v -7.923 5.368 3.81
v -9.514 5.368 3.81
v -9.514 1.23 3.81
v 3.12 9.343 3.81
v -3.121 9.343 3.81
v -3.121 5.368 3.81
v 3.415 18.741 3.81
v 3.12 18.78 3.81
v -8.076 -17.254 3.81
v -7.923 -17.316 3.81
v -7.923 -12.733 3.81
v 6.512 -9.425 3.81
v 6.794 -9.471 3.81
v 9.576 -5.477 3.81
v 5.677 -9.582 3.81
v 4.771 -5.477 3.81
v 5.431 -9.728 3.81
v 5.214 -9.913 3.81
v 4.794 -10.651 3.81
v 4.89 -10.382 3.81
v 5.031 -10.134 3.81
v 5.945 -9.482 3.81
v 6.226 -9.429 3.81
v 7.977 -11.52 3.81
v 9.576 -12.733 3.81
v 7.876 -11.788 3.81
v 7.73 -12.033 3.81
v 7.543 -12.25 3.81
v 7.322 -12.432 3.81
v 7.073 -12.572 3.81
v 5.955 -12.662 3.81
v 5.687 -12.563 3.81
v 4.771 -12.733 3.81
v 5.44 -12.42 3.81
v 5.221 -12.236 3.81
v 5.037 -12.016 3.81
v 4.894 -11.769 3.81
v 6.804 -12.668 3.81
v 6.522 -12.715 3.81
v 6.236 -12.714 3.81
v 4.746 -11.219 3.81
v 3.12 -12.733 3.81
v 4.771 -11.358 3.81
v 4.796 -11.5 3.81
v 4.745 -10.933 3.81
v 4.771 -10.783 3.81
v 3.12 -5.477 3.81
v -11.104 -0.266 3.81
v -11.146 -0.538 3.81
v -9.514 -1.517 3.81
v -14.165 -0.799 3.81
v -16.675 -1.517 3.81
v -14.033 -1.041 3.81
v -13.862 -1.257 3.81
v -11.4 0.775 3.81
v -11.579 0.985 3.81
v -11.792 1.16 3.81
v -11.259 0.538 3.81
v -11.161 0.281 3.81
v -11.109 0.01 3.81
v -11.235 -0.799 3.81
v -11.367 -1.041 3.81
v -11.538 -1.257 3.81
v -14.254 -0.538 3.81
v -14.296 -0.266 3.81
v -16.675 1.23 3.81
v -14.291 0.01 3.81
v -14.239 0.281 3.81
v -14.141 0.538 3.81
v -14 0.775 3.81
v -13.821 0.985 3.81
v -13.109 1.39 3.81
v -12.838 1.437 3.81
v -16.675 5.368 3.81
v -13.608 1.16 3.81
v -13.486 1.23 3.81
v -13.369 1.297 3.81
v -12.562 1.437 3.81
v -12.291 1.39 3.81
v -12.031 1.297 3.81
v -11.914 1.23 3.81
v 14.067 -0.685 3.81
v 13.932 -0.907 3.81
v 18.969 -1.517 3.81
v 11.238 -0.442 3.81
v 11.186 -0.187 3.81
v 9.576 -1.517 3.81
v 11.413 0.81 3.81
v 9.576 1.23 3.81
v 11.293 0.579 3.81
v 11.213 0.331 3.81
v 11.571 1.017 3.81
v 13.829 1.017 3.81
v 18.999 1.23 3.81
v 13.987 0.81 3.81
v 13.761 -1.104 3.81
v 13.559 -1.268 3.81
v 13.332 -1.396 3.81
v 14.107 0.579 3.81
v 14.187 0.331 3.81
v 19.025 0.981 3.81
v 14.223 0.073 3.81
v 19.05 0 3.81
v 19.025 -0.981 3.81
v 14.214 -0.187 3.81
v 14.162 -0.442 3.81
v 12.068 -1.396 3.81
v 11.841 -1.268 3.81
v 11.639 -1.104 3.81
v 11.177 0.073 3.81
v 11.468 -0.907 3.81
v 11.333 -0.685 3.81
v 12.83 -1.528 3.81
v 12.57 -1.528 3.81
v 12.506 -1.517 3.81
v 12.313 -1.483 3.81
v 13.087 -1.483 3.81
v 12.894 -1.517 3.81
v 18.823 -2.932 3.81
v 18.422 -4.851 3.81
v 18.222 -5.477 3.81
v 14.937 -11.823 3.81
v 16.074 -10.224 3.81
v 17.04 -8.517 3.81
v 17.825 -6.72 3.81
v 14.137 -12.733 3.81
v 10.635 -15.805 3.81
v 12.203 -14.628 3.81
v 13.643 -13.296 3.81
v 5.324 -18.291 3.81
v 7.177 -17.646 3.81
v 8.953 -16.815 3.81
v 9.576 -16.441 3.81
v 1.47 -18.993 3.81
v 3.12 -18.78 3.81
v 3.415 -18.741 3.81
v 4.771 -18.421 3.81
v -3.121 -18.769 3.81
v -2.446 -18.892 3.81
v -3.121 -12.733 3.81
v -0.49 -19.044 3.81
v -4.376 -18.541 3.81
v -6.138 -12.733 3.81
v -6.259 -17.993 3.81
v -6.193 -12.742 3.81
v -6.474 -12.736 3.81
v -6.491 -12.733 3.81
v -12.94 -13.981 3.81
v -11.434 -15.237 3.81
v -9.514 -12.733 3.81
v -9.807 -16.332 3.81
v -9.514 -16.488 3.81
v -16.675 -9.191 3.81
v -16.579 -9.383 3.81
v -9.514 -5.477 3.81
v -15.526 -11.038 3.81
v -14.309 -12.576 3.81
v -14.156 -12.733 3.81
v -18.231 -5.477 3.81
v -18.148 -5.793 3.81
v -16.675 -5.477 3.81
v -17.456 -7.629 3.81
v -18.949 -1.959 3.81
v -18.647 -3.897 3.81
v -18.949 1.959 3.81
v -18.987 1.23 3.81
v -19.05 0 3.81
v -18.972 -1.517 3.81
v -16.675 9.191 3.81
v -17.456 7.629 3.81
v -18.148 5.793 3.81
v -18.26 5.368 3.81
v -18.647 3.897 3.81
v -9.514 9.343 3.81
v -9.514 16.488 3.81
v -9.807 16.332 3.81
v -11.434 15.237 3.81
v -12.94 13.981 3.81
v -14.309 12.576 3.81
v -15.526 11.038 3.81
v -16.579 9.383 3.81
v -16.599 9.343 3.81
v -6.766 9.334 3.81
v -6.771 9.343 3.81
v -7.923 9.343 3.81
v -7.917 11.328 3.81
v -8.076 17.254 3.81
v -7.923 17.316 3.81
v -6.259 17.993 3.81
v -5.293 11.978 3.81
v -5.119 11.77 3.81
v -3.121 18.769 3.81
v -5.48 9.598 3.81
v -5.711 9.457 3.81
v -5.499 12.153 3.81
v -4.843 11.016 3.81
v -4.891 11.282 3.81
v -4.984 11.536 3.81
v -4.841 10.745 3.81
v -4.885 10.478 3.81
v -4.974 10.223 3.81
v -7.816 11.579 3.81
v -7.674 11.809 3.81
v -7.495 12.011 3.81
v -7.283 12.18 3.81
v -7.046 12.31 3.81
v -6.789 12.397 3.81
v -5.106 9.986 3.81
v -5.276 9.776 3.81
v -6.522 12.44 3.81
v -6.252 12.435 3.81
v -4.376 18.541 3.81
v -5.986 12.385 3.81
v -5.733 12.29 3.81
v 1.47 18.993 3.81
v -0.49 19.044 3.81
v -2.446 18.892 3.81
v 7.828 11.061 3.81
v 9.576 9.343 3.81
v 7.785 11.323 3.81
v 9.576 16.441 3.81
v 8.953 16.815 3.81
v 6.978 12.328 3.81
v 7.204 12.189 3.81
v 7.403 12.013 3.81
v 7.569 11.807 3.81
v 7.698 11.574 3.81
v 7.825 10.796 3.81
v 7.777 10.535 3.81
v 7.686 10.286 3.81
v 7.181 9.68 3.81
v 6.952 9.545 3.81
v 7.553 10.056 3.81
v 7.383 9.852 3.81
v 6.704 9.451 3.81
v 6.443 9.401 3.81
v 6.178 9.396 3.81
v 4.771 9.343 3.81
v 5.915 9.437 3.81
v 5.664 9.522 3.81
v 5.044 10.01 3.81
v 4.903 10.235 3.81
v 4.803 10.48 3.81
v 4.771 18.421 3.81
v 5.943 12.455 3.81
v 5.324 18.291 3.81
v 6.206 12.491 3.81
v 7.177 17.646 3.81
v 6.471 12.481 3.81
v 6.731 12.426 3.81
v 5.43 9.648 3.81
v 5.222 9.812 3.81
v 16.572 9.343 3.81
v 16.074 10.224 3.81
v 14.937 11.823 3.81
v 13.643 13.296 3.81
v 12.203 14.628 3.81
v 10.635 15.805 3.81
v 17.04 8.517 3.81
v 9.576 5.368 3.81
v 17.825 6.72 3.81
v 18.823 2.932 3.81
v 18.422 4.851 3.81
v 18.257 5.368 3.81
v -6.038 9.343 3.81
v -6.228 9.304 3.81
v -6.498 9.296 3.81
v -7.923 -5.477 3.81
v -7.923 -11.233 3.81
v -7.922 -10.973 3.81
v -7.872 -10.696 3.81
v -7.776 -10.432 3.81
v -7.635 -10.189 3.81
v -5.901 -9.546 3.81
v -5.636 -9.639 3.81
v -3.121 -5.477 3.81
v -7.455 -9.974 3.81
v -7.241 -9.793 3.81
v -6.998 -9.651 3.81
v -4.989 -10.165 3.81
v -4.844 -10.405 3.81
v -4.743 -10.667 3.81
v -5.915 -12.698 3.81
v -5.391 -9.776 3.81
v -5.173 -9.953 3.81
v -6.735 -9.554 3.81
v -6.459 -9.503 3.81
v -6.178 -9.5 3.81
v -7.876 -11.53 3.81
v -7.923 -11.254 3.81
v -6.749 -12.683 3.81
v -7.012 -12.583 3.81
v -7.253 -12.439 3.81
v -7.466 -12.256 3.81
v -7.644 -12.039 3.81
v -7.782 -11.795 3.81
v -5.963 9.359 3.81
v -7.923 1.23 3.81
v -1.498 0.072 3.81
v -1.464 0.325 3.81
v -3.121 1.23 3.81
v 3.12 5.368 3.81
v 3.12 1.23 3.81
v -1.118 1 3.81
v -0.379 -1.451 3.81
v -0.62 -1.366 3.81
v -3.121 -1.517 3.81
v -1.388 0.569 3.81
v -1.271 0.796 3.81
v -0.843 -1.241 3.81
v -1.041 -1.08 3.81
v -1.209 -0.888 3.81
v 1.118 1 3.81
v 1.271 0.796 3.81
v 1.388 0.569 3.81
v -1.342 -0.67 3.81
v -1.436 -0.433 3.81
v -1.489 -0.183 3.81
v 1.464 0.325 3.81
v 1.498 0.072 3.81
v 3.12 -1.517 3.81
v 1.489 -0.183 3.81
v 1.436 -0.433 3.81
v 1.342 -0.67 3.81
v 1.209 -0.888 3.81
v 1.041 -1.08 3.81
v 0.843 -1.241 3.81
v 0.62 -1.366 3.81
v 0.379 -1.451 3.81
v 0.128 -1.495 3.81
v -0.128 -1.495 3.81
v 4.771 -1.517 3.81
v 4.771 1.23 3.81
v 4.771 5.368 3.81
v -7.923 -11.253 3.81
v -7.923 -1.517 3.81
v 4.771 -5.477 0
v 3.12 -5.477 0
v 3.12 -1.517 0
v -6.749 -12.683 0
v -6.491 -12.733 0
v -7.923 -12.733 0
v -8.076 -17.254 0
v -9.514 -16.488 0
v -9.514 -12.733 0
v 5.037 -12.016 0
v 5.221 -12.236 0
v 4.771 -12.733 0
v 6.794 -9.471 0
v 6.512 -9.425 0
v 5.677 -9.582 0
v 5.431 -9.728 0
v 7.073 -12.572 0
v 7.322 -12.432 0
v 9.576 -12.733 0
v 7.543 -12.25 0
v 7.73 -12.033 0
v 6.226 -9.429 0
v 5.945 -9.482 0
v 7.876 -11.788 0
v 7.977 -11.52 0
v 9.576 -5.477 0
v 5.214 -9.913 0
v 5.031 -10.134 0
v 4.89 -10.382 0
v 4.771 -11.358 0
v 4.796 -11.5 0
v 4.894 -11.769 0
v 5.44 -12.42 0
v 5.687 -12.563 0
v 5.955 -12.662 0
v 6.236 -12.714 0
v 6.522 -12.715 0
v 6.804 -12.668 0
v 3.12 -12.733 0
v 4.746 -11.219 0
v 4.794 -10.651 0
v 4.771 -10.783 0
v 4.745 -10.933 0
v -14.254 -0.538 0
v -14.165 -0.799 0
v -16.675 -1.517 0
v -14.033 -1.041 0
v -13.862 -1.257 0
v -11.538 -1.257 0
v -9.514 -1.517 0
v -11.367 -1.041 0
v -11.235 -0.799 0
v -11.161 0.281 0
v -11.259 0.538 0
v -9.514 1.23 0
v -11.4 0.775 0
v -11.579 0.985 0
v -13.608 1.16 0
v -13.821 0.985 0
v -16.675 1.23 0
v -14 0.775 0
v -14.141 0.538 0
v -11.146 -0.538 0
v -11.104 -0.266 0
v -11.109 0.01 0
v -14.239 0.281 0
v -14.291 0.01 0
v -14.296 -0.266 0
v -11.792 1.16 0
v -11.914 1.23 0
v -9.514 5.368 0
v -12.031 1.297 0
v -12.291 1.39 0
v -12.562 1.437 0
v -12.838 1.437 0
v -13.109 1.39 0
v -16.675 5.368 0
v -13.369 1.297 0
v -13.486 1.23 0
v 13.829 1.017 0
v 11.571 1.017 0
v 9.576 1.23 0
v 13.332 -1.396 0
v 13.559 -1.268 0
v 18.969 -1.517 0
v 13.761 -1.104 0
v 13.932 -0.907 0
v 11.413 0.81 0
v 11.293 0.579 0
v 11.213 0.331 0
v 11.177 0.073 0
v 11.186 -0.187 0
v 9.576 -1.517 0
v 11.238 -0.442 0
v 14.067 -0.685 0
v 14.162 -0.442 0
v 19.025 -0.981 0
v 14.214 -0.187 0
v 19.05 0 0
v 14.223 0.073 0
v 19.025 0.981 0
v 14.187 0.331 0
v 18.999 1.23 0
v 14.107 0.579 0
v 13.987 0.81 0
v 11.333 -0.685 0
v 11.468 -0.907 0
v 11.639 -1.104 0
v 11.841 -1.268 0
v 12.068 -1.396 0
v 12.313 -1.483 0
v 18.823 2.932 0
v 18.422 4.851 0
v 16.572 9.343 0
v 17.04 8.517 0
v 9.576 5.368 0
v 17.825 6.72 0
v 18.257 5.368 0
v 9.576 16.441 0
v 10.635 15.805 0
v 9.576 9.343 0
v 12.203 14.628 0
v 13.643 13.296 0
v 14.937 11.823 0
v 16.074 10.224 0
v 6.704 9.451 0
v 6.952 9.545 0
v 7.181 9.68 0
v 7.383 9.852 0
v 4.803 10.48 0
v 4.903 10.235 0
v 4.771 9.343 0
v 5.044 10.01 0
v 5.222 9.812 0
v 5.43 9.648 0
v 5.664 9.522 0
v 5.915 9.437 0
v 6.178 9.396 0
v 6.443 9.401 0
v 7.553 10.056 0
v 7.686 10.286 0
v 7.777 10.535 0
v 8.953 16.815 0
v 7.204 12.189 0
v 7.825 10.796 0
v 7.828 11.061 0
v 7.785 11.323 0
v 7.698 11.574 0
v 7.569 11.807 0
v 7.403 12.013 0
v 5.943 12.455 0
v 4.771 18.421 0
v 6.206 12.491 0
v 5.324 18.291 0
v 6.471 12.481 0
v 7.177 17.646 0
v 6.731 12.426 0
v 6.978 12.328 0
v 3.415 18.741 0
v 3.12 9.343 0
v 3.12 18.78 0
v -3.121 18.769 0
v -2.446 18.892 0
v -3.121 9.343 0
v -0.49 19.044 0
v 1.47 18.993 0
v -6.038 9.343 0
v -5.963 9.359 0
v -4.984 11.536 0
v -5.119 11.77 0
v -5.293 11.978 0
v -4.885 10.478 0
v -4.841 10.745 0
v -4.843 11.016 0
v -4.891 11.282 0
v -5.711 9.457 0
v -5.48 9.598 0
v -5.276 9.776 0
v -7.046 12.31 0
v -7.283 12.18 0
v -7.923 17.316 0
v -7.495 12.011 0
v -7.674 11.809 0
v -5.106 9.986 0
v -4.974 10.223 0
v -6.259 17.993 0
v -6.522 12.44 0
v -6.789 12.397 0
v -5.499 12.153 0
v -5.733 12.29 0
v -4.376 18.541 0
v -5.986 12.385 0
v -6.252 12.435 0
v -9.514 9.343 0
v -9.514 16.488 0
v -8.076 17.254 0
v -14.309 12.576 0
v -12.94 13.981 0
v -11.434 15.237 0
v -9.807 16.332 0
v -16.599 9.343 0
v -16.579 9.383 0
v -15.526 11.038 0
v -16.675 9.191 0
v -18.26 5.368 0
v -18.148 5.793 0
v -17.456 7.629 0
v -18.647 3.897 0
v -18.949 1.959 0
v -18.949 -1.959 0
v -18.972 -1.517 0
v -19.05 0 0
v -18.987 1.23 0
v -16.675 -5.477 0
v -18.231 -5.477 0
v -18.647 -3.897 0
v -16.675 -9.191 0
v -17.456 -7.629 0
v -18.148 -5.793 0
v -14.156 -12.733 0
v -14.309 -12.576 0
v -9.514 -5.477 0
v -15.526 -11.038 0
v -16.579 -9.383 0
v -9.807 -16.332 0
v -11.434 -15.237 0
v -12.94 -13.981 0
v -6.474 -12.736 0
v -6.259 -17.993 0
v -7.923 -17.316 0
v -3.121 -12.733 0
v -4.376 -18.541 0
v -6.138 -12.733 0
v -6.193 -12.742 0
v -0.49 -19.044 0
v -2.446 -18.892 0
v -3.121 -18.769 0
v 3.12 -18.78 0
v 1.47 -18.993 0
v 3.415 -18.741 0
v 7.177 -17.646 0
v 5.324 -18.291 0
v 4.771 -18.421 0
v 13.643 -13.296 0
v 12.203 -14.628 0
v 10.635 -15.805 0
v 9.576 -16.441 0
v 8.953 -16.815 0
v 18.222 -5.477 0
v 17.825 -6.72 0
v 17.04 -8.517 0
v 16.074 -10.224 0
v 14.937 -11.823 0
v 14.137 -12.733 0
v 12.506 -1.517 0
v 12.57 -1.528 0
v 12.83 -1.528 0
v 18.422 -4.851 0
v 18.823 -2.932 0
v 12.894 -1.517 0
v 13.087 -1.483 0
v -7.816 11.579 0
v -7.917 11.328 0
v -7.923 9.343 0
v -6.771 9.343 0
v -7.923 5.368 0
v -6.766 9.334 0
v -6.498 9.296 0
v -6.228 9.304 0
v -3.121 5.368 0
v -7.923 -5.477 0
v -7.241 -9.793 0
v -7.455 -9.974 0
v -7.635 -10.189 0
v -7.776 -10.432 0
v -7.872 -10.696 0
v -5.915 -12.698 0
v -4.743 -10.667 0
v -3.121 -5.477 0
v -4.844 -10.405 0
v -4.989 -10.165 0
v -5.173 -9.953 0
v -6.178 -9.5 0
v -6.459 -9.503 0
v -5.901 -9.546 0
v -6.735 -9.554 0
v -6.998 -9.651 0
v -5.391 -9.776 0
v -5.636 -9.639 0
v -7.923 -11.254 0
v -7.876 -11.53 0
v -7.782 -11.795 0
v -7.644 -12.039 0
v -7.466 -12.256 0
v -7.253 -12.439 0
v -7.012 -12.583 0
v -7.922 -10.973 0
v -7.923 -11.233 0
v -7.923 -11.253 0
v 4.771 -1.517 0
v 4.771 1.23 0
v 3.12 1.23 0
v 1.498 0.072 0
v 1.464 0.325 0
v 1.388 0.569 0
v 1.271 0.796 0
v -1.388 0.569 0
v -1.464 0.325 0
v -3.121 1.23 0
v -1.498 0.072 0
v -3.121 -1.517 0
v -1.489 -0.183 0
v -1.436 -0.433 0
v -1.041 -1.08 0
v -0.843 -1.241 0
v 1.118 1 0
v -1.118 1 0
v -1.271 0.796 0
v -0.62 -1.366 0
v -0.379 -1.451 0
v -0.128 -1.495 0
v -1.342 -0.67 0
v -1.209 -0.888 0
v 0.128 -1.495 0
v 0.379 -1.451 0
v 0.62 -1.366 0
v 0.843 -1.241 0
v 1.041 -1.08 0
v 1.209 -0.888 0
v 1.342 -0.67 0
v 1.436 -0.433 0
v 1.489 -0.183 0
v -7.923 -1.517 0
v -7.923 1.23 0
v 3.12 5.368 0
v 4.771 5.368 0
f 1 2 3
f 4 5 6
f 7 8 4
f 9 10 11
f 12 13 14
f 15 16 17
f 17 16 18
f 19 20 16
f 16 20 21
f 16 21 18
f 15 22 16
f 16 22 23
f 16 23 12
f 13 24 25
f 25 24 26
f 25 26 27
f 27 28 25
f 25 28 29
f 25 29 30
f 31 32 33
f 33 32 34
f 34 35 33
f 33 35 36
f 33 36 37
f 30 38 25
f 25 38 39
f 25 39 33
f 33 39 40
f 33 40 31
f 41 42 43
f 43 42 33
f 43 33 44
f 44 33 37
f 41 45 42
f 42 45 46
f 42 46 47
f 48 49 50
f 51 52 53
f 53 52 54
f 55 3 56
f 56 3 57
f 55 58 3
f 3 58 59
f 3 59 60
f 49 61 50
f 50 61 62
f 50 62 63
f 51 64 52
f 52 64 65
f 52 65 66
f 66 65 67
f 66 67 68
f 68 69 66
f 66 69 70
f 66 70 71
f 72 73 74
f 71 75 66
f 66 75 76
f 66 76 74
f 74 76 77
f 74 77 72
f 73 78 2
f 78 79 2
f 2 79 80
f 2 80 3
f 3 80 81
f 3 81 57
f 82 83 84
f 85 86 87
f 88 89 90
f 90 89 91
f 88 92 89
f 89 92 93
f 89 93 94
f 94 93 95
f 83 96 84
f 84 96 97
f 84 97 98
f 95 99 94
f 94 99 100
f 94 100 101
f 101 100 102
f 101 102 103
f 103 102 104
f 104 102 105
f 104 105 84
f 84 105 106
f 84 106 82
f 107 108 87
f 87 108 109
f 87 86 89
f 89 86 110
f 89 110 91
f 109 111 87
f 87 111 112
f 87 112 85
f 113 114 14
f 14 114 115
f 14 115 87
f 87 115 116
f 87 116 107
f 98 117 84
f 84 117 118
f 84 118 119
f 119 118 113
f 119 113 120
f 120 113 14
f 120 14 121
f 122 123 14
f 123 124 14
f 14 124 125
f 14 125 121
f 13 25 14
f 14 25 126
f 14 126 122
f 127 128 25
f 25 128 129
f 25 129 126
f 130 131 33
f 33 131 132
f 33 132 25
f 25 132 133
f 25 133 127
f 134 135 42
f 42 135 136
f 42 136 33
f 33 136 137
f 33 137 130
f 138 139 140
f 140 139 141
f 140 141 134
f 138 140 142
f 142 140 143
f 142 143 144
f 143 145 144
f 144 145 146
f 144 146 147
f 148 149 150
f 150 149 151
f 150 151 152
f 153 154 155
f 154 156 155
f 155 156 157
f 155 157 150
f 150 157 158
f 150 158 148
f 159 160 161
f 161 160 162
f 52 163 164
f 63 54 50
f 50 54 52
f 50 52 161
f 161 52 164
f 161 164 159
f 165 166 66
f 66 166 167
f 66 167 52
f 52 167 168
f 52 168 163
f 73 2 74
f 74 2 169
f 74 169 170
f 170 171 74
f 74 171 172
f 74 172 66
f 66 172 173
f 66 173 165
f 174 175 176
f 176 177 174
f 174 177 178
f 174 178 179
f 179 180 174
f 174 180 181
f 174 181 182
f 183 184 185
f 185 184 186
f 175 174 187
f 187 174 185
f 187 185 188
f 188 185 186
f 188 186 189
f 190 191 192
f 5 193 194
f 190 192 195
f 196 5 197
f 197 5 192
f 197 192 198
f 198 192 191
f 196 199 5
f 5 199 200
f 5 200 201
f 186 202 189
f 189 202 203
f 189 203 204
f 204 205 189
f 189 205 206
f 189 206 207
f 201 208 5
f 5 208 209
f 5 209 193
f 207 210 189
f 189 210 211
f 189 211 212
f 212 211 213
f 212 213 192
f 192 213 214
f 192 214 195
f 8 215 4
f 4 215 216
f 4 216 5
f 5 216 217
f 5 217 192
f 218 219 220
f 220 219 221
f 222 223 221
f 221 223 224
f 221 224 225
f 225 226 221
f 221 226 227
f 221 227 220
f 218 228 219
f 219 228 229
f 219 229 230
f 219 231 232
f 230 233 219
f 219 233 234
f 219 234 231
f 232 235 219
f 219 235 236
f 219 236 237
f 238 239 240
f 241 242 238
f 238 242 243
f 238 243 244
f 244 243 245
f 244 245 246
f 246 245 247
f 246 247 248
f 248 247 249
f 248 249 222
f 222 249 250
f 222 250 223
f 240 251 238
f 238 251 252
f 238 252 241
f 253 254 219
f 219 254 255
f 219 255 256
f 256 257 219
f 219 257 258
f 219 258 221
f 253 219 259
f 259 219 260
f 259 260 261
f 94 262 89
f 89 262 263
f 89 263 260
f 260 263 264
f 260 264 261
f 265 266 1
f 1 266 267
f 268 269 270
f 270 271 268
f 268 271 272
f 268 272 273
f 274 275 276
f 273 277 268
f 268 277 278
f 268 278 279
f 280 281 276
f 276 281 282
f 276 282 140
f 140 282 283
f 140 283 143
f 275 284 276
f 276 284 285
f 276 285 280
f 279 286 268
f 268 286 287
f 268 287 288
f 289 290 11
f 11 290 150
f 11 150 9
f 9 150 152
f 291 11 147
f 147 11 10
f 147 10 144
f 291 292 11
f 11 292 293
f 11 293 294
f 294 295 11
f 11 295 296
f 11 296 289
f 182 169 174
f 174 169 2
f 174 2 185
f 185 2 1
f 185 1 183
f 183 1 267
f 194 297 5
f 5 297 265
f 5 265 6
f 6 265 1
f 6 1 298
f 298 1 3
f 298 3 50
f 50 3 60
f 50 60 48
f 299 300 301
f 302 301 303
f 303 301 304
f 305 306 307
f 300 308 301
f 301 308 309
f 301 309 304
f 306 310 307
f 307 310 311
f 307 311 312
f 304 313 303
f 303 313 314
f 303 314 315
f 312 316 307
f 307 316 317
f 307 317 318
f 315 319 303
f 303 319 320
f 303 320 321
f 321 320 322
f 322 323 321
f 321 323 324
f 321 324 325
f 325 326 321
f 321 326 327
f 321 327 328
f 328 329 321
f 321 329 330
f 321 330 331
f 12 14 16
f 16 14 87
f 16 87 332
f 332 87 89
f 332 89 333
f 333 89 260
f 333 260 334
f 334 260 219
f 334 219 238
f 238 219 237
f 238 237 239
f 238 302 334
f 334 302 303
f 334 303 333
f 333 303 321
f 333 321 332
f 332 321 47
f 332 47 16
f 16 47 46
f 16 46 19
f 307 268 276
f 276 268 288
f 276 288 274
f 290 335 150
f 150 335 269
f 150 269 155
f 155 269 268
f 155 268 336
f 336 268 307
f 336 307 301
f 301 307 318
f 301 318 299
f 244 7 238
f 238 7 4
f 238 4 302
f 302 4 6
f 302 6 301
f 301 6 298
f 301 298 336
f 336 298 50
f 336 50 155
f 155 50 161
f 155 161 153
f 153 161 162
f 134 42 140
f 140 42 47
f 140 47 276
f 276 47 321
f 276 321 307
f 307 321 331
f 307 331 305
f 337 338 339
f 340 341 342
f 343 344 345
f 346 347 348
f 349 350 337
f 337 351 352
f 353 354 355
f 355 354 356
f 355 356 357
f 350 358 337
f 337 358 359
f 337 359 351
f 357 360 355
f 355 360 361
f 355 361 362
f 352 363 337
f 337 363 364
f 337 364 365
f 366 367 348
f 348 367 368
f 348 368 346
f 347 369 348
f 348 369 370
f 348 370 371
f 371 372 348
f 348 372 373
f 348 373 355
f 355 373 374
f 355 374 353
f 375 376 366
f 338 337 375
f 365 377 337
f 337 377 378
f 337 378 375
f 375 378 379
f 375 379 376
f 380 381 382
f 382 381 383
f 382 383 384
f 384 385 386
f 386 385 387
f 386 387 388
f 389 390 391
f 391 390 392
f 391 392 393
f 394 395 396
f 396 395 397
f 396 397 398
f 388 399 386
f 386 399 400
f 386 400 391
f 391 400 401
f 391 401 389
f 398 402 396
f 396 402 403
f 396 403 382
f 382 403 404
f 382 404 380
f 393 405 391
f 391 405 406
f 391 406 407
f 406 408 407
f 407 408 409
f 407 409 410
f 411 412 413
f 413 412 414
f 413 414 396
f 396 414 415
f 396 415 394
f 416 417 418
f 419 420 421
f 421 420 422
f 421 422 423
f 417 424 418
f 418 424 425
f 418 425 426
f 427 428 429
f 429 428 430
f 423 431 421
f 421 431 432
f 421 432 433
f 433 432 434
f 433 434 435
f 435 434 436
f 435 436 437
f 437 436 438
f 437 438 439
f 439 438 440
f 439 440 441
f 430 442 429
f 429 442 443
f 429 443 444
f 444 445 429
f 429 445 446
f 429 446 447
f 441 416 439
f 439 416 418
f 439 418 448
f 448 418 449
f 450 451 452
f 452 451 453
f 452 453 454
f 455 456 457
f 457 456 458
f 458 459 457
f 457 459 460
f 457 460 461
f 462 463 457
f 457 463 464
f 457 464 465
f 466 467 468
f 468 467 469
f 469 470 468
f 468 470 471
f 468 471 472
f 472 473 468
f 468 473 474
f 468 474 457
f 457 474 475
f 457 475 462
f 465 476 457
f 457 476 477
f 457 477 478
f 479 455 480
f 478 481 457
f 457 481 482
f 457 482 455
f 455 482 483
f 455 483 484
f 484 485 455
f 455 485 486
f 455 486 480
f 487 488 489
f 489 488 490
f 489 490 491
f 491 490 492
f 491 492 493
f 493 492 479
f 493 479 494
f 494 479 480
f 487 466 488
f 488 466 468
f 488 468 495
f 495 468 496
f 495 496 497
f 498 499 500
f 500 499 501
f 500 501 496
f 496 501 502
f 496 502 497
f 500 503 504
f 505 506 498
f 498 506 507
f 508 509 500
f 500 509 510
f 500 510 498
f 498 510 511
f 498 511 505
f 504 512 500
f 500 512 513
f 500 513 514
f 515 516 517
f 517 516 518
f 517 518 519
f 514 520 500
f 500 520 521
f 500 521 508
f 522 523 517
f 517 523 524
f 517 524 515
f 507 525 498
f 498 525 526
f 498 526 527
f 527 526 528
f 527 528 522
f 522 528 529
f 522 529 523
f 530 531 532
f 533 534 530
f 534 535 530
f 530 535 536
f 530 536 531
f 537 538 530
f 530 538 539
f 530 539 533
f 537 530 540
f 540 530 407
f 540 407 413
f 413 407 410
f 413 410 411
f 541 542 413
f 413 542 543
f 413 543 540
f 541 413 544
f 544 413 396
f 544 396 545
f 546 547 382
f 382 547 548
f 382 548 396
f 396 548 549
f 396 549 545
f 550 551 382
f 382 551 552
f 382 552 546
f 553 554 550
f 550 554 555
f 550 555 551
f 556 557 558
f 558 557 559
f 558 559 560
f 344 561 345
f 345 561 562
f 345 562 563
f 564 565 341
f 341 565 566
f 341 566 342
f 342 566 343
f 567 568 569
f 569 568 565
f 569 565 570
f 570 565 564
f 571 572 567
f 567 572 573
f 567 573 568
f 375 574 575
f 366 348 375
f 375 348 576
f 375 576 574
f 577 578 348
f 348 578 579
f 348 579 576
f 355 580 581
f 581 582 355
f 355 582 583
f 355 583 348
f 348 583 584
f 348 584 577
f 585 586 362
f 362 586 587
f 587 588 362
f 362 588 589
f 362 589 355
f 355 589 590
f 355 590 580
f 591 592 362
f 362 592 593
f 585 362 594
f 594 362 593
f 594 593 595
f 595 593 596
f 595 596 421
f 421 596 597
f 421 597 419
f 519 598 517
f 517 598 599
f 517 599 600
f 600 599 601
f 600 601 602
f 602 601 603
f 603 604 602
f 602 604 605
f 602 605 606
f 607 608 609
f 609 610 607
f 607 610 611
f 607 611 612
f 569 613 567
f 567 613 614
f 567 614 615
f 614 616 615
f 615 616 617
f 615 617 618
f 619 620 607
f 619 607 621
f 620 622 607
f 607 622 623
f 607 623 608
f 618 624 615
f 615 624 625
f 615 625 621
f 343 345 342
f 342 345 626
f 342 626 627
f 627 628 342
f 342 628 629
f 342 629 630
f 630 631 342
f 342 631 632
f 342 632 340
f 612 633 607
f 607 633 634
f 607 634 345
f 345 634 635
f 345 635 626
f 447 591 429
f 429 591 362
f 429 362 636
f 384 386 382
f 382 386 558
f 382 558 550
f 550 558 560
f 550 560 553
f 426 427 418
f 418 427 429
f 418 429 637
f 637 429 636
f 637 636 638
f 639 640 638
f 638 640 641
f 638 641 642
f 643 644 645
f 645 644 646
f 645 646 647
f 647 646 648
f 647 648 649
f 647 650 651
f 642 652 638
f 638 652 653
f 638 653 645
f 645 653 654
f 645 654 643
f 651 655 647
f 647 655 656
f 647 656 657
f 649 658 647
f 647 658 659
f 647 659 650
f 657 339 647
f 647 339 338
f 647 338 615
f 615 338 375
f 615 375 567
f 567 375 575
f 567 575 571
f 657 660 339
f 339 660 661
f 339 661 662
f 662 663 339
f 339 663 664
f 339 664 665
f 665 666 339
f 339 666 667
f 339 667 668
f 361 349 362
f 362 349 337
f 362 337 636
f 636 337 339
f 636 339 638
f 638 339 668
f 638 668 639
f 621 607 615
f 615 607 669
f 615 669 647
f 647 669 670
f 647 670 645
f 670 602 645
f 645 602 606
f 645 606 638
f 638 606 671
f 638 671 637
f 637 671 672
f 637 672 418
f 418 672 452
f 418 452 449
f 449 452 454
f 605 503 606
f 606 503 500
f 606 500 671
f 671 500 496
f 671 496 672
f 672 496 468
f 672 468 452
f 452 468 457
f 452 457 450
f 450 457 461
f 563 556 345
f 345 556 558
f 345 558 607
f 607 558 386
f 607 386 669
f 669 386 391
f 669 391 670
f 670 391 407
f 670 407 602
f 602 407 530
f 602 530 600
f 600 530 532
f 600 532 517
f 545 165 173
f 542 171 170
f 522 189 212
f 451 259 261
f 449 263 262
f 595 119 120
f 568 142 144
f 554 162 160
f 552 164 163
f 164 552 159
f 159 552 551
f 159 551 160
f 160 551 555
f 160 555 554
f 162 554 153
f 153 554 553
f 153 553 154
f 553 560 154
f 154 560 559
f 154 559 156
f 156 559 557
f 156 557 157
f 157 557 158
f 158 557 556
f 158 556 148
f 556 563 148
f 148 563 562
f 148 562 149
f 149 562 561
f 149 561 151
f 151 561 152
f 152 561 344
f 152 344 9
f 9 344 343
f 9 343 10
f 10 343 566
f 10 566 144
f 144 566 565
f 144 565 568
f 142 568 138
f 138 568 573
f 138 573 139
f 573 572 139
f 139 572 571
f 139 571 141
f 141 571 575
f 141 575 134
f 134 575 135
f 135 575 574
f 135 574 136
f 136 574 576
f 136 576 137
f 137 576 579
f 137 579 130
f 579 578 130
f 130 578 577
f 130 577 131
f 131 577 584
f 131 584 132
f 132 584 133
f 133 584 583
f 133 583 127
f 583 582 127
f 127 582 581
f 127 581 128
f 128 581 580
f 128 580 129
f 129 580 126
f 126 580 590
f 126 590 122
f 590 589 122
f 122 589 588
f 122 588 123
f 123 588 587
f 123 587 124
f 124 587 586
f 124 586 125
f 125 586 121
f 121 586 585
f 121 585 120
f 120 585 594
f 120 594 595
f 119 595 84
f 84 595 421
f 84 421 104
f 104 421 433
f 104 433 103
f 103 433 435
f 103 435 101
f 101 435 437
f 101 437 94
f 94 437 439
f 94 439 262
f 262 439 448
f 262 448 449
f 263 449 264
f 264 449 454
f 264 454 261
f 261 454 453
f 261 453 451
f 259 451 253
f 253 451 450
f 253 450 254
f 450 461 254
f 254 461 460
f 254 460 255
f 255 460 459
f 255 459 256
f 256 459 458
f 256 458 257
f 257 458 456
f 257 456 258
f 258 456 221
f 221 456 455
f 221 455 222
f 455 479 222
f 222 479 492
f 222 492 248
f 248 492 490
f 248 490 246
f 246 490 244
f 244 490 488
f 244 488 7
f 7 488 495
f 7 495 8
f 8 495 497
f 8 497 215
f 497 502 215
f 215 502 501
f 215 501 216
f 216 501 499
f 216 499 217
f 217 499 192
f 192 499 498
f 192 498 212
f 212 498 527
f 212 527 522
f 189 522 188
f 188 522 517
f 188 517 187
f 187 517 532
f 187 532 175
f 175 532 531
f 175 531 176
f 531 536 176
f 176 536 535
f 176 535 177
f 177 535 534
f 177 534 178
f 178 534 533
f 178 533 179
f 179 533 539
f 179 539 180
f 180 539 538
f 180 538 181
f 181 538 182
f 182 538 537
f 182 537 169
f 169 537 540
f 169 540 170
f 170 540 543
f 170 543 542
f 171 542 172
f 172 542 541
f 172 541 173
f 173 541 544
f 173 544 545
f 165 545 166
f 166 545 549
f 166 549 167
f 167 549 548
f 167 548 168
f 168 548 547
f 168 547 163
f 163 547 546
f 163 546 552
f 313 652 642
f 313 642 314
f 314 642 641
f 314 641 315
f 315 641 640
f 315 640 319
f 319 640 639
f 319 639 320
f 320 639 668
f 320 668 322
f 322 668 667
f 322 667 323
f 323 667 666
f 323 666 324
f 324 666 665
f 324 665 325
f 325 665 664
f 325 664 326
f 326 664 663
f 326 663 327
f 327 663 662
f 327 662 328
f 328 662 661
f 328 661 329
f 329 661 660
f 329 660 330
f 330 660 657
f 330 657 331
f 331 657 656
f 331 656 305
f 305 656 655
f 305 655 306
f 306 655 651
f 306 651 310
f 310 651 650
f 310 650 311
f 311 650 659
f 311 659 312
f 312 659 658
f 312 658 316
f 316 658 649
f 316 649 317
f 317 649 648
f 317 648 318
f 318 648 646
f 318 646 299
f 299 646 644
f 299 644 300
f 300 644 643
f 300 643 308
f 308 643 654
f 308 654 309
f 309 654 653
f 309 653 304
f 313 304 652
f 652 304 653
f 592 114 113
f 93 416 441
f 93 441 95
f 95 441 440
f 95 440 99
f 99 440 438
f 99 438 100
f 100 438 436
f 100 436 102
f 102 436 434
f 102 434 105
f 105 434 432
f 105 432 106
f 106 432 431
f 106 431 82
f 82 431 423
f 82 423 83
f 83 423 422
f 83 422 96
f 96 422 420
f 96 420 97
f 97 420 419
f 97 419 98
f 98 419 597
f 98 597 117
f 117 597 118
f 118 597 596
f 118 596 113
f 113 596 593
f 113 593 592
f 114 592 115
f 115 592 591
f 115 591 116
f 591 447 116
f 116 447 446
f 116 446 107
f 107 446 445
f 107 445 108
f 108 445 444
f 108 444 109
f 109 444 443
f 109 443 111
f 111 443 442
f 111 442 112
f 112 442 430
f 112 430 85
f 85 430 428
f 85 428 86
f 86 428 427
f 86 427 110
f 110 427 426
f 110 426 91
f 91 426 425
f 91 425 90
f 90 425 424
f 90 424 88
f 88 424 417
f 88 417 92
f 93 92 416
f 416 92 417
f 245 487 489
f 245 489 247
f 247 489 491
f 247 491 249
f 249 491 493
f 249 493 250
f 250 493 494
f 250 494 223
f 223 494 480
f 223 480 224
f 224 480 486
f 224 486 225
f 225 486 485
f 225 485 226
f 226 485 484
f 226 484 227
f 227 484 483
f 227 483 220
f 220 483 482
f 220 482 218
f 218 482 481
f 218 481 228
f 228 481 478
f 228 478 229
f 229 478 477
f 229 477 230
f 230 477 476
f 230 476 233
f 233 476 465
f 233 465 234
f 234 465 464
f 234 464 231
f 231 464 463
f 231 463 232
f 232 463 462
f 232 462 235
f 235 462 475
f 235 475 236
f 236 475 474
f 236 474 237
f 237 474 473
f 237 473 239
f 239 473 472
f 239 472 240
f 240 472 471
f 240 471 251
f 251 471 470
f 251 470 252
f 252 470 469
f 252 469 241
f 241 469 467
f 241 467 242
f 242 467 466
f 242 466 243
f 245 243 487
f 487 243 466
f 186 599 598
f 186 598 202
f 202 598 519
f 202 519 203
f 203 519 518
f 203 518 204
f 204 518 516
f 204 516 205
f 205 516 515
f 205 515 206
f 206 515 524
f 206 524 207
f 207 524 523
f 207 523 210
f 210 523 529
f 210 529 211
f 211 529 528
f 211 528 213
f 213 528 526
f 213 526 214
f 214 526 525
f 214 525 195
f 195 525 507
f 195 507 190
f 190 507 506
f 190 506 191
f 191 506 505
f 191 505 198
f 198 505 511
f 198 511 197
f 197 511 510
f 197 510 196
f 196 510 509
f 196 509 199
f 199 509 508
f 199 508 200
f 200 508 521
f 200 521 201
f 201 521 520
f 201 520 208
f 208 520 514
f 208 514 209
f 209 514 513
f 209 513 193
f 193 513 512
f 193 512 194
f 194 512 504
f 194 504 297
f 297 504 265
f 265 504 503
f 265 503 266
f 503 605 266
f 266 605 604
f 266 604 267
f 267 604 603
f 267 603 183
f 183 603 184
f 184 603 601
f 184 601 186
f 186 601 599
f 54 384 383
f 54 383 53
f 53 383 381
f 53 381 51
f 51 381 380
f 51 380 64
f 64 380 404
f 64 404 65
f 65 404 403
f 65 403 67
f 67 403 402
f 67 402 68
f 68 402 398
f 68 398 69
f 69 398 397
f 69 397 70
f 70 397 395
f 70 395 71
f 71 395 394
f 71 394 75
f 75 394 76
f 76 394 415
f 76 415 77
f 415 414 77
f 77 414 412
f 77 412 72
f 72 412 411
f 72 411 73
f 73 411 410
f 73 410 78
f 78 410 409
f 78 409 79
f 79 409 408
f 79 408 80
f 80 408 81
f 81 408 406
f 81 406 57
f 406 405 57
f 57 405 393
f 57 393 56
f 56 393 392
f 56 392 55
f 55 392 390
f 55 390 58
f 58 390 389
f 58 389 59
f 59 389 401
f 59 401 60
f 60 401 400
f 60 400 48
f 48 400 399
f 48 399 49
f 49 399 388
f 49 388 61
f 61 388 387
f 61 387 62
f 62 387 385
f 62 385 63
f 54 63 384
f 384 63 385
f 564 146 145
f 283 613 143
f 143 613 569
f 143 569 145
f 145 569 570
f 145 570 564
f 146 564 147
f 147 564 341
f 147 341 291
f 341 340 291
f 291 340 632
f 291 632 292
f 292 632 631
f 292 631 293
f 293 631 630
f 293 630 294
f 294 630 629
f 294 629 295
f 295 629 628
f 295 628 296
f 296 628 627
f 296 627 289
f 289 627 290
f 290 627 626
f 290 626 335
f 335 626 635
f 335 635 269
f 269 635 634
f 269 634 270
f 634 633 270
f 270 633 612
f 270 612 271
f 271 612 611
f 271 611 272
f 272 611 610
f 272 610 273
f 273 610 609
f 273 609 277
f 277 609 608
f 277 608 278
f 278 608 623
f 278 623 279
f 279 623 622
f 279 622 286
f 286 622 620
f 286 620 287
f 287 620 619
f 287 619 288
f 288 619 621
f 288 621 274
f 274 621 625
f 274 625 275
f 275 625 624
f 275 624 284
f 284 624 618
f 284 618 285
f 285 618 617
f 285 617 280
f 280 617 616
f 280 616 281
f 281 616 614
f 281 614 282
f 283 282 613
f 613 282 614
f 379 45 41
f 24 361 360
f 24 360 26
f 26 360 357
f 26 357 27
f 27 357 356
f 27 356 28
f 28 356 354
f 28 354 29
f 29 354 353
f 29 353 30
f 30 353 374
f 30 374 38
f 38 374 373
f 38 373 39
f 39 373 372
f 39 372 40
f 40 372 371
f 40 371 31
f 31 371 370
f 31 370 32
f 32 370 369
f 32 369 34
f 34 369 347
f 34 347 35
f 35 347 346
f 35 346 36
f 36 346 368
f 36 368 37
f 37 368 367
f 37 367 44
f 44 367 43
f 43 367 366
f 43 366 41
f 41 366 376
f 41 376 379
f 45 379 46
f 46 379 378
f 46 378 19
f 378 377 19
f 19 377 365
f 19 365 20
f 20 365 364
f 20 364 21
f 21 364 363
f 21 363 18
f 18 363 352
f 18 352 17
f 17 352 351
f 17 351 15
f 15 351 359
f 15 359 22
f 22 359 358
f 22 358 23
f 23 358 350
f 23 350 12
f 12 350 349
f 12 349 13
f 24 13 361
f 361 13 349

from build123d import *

# Parameters (mm, degrees)
SKETCH1_R           = 19.05
BOSS_EXTRUDE1_DEPTH = 3.81


with BuildPart() as part:
    # Sketch1 → Boss-Extrude1 (new body)
    with BuildSketch(Plane.XY):
        with Locations(Location((0, 0, 0), (0, 0, 180))):
            Circle(SKETCH1_R)
        with BuildLine():
            Line((1.118033989, 1), (-1.118033989, 1))
            ThreePointArc((-1.118033989, 1), (0, -1.5), (1.118033989, 1))
        make_face(mode=Mode.SUBTRACT)
        with BuildLine():
            Line((13.829158979, 1.016666667), (11.570841021, 1.016666667))
            ThreePointArc((11.570841021, 1.016666667), (12.7, -1.533333333), (13.829158979, 1.016666667))
        make_face(mode=Mode.SUBTRACT)
        with BuildLine():
            Line((5.942864327, 12.455213271), (4.802688902, 10.480371506))
            ThreePointArc((4.802688902, 10.480371506), (7.624442664, 10.167792388), (5.942864327, 12.455213271))
        make_face(mode=Mode.SUBTRACT)
        with BuildLine():
            Line((-7.917318674, 11.327860481), (-6.76623223, 9.334120277))
            ThreePointArc((-6.76623223, 9.334120277), (-5.046808132, 11.655990379), (-7.917318674, 11.327860481))
        make_face(mode=Mode.SUBTRACT)
        with BuildLine():
            Line((-13.861895004, -1.256937352), (-11.538104996, -1.256937352))
            ThreePointArc((-11.538104996, -1.256937352), (-12.7, 1.443062648), (-13.861895004, -1.256937352))
        make_face(mode=Mode.SUBTRACT)
        with BuildLine():
            Line((-5.915422385, -12.698362956), (-4.742818445, -10.667353355))
            ThreePointArc((-4.742818445, -10.667353355), (-7.710690276, -10.307858156), (-5.915422385, -12.698362956))
        make_face(mode=Mode.SUBTRACT)
        with BuildLine():
            Line((7.977039629, -11.520341387), (6.793823672, -9.470951234))
            ThreePointArc((6.793823672, -9.470951234), (4.96056052, -11.89564631), (7.977039629, -11.520341387))
        make_face(mode=Mode.SUBTRACT)
    extrude(amount=BOSS_EXTRUDE1_DEPTH)


solid = part.part
